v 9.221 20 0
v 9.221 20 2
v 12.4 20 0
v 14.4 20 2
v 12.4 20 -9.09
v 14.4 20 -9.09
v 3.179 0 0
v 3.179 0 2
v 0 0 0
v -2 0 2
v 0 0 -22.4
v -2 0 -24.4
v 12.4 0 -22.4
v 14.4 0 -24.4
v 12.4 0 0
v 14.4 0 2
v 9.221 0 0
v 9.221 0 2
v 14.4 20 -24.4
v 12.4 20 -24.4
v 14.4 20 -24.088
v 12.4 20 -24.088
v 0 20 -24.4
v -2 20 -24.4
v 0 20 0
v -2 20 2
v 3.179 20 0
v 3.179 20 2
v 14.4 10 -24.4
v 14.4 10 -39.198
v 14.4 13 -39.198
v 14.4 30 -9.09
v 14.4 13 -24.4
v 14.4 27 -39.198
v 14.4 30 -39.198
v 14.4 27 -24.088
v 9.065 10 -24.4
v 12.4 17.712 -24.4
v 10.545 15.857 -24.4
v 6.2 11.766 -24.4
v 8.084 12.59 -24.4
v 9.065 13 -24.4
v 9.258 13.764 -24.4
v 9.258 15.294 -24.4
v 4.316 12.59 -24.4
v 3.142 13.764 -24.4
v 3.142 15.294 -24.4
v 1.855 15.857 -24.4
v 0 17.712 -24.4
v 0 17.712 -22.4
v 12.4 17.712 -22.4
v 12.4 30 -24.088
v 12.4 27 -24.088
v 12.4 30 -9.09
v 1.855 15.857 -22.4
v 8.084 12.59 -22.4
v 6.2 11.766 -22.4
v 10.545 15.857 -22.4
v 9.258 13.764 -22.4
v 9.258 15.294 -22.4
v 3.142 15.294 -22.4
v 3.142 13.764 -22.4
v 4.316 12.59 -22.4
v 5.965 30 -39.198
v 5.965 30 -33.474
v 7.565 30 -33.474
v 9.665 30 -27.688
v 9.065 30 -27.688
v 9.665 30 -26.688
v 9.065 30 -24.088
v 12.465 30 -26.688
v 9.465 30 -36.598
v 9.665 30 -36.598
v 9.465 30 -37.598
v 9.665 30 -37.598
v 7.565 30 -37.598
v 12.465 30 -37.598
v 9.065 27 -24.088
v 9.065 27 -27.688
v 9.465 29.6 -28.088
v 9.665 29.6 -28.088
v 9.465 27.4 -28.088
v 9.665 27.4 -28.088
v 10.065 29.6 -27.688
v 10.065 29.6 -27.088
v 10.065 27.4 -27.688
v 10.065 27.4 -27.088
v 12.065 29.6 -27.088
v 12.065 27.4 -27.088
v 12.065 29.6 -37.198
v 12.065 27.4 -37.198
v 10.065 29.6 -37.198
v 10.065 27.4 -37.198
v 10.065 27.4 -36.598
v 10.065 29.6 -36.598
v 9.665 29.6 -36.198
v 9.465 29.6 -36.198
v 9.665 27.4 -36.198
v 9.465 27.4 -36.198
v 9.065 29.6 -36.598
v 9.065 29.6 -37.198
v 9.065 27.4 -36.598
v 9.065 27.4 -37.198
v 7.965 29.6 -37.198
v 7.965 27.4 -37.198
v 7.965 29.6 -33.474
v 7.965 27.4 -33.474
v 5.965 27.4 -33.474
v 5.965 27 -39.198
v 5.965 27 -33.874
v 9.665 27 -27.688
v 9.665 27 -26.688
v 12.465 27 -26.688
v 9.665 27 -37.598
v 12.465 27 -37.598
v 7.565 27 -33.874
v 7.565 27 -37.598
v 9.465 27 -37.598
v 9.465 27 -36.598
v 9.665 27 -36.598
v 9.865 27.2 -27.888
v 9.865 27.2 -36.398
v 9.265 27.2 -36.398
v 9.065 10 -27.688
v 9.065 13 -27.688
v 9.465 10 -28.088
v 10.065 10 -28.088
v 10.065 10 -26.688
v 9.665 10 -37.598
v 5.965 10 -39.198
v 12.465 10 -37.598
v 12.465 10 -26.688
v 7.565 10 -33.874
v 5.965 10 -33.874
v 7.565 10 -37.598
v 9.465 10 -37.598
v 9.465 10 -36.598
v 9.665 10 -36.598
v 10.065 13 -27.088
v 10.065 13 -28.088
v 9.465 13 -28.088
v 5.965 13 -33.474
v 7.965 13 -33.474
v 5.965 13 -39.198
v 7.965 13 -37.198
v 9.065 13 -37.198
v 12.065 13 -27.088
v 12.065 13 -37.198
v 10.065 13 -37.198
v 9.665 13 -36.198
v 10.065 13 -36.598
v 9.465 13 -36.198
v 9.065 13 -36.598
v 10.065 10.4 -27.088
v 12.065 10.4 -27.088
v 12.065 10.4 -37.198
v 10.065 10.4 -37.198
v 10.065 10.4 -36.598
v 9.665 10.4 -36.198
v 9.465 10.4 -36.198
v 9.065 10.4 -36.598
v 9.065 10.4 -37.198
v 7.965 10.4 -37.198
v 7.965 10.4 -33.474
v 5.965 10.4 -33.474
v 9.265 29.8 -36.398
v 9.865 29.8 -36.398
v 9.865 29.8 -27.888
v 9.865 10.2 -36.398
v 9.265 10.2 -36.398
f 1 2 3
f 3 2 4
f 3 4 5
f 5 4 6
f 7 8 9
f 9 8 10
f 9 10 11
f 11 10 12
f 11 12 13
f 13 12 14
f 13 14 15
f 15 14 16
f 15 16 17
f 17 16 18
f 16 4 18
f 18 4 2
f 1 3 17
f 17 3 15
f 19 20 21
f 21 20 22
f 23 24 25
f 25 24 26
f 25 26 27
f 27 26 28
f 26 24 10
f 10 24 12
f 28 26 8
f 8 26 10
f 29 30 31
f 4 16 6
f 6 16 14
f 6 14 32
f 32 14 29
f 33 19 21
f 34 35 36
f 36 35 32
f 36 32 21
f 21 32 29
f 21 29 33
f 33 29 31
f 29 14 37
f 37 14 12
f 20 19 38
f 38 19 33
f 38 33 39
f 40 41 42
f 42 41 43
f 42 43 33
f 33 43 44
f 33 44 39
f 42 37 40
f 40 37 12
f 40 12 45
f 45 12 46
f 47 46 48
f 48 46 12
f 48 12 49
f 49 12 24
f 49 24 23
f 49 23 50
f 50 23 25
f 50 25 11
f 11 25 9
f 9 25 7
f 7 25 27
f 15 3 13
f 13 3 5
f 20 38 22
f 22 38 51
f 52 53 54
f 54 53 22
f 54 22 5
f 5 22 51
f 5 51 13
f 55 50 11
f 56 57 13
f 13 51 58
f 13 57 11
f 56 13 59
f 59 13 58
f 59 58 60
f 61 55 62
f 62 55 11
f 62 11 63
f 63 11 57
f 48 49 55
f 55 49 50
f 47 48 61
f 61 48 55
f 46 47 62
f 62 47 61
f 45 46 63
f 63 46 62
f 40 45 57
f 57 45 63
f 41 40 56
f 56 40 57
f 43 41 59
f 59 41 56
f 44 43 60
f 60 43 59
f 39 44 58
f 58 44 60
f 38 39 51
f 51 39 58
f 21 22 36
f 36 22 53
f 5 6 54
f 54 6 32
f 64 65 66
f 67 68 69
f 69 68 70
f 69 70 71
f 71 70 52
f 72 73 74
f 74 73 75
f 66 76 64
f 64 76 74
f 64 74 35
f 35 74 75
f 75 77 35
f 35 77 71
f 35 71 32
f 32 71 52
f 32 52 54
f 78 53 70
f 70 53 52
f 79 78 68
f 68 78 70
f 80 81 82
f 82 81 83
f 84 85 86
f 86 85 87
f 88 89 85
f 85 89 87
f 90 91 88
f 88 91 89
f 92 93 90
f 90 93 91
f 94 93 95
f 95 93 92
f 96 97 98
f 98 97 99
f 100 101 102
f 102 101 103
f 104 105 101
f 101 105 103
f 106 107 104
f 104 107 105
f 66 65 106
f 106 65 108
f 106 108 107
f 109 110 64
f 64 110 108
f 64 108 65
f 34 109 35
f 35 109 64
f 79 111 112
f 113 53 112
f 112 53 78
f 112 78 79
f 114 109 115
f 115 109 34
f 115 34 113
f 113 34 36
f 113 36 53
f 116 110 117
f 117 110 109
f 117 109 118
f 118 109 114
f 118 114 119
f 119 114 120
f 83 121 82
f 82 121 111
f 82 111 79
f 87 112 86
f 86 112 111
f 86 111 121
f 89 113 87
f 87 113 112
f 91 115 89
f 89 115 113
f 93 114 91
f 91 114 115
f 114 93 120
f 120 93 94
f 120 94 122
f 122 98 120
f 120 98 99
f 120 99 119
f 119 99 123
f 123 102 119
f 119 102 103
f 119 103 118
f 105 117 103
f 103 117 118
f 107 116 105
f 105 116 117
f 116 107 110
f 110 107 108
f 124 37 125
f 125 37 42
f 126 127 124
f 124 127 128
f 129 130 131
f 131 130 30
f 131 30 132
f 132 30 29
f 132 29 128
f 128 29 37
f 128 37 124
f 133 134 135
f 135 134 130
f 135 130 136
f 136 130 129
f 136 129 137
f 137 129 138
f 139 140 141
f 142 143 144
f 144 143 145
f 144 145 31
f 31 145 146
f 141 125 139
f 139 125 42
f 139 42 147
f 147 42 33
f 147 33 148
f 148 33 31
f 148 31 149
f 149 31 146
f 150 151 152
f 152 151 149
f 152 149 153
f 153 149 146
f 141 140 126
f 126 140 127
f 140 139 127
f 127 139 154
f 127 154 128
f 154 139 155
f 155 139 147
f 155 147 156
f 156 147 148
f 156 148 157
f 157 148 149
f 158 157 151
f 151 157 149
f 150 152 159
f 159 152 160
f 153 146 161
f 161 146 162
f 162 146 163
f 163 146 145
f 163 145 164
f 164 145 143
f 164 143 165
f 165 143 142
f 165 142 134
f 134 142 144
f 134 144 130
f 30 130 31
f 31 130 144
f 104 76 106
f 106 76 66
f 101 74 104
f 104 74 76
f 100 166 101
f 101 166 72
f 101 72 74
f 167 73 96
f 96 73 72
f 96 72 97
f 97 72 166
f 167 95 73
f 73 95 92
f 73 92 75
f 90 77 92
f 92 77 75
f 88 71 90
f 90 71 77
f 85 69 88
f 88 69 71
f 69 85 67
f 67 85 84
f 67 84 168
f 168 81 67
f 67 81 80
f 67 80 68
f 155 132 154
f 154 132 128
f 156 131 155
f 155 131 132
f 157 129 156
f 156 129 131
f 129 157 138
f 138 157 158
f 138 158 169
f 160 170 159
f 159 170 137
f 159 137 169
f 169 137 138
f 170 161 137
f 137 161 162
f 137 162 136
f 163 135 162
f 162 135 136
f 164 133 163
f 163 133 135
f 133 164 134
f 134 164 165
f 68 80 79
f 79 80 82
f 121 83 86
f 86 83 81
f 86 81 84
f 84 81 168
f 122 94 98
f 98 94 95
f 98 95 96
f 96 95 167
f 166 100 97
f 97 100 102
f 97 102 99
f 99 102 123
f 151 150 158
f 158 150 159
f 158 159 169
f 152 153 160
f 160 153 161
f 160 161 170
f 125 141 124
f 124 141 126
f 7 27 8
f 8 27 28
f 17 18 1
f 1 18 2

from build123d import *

# Parameters (mm, degrees)
SKETCH1_W               = 16.4
SKETCH1_H               = 26.4
SKETCH1_W_2             = 12.4
SKETCH1_H_2             = 22.4
BOSS_EXTRUDE1_DEPTH     = 20
CUT_EXTRUDE1_DEPTH      = 10
BOSS_EXTRUDE2_DEPTH     = 3
CHAMFER3_SIZE           = 0.4
SKETCH5_W               = 2
SKETCH5_H               = 14.997550085
BOSS_EXTRUDE3_DEPTH     = 10
LPATTERN1_COUNT         = 2
LPATTERN1_PITCH         = 17
CHAMFER1_SIZE           = 0.4
CHAMFER5_SIZE           = 0.4
CHAMFER6_SIZE           = 0.4
CUT_EXTRUDE2_DEPTH      = 47.301249176
CUT_EXTRUDE2_DEPTH_BACK = 47.301249176
SKETCH6_W               = 6.042108652
SKETCH6_H               = 2


with BuildPart() as part:
    # Sketch1 → Boss-Extrude1 (new body)
    with BuildSketch(Plane(origin=(0, 0, 0), x_dir=(1, 0, 0), z_dir=(0, 1, 0))):
        with Locations((6.2, 11.2)):
            Rectangle(SKETCH1_W, SKETCH1_H)
        with Locations((6.2, 11.2)):
            Rectangle(SKETCH1_W_2, SKETCH1_H_2, mode=Mode.SUBTRACT)
    extrude(amount=BOSS_EXTRUDE1_DEPTH)

    # Sketch2 → Cut-Extrude1 (cut)
    with BuildSketch(Plane(origin=(0, 0, -24.4), x_dir=(-1, 0, 0), z_dir=(0, 0, -1))):
        Polygon((-12.4, 20), (-12.4, 17.712061235), (-10.544532553, 15.856593788), (-9.258136531, 15.293507674), (-9.258136531, 13.764128217), (-8.084426715, 12.5904184), (-6.2, 11.765560038), (-4.315573285, 12.5904184), (-3.141863469, 13.764128217), (-3.141863469, 15.293507674), (-1.855467447, 15.856593788), (0, 17.712061235), (0, 20), align=None)
    extrude(amount=-CUT_EXTRUDE1_DEPTH, mode=Mode.SUBTRACT)



with BuildPart() as body_2:
    # Sketch4 → Boss-Extrude2 (new body)
    with BuildSketch(Plane(origin=(0, 30, 0), x_dir=(1, 0, 0), z_dir=(0, 1, 0))):
        Polygon((12.4, 12.2), (14.4, 12.2), (14.4, 39.19752129), (12.472658245, 39.19752129), (7.96501827, 39.19752129), (5.96501827, 39.19752129), (5.96501827, 33.473580557), (7.96501827, 33.473580557), (7.96501827, 37.19752129), (9.06501827, 37.19752129), (9.06501827, 36.19752129), (10.06501827, 36.19752129), (10.06501827, 37.19752129), (12.06501827, 37.19752129), (12.06501827, 27.08752129), (10.06501827, 27.08752129), (10.06501827, 28.08752129), (9.06501827, 28.08752129), (9.06501827, 24.08752129), (12.4, 24.08752129), align=None)
    boss_extrude2 = extrude(amount=-BOSS_EXTRUDE2_DEPTH)

    # Chamfer3
    chamfer3_edges = [body_2.edges().sort_by_distance(p)[0] for p in [
        (6.96501827, 27, -33.473580557),
        (7.96501827, 27, -35.335550923),
        (8.51501827, 27, -37.19752129),
        (9.06501827, 27, -36.69752129),
        (9.56501827, 27, -36.19752129),
        (10.06501827, 27, -36.69752129),
        (11.06501827, 27, -37.19752129),
        (9.56501827, 27, -28.08752129),
        (10.06501827, 27, -27.58752129),
        (11.06501827, 27, -27.08752129),
        (12.06501827, 27, -32.14252129),
    ]]
    chamfer(chamfer3_edges, length=CHAMFER3_SIZE)


with BuildPart() as part_1:
    add(part.part)

    add(body_2.part)  # Boss-Extrude3 merges body 2
    # Sketch5 → Boss-Extrude3 (add)
    with BuildSketch(Plane(origin=(0, 30, 0), x_dir=(1, 0, 0), z_dir=(0, 1, 0))):
        with Locations((13.4, 16.588746248)):
            Rectangle(SKETCH5_W, SKETCH5_H)
    extrude(amount=-BOSS_EXTRUDE3_DEPTH)

    # LPattern1: Boss-Extrude2 ×2
    with Locations(*[(0, -i * LPATTERN1_PITCH, 0) for i in range(1, LPATTERN1_COUNT)]):
        add(boss_extrude2)

    # Chamfer1
    chamfer1_edges = [part_1.edges().sort_by_distance(p)[0] for p in [
        (9.56501827, 30, -28.08752129),
        (10.06501827, 30, -27.58752129),
        (7.96501827, 30, -35.335550923),
        (8.51501827, 30, -37.19752129),
        (9.06501827, 30, -36.69752129),
        (9.56501827, 30, -36.19752129),
        (10.06501827, 30, -36.69752129),
        (11.06501827, 30, -27.08752129),
        (11.06501827, 30, -37.19752129),
        (12.06501827, 30, -32.14252129),
    ]]
    chamfer(chamfer1_edges, length=CHAMFER1_SIZE)

    # Chamfer5
    chamfer5_edges = [part_1.edges().sort_by_distance(p)[0] for p in [
        (6.96501827, 10, -33.473580557),
        (7.96501827, 10, -35.335550923),
        (8.51501827, 10, -37.19752129),
        (9.06501827, 10, -36.69752129),
        (9.56501827, 10, -36.19752129),
        (10.06501827, 10, -36.69752129),
        (11.06501827, 10, -37.19752129),
        (12.06501827, 10, -32.14252129),
        (11.06501827, 10, -27.08752129),
    ]]
    chamfer(chamfer5_edges, length=CHAMFER5_SIZE)

    # Chamfer6
    chamfer6_edges = [part_1.edges().sort_by_distance(p)[0] for p in [
        (9.06501827, 28.5, -28.08752129),
        (10.06501827, 28.5, -28.08752129),
        (10.06501827, 28.5, -36.19752129),
        (9.06501827, 28.5, -36.19752129),
        (10.06501827, 11.7, -36.19752129),
        (9.06501827, 11.7, -36.19752129),
        (9.06501827, 11.5, -28.08752129),
    ]]
    chamfer(chamfer6_edges, length=CHAMFER6_SIZE)

    # Sketch6 → Cut-Extrude2 (cut, two sides: drawn at the far end of the back side and taken through both)
    with BuildSketch(Plane(origin=(0, 20, 0), x_dir=(1, 0, 0), z_dir=(0, 1, 0)).offset(-CUT_EXTRUDE2_DEPTH_BACK)):
        with Locations((6.2, -1)):
            Rectangle(SKETCH6_W, SKETCH6_H)
    extrude(amount=CUT_EXTRUDE2_DEPTH + CUT_EXTRUDE2_DEPTH_BACK, mode=Mode.SUBTRACT)


solid = part_1.part
